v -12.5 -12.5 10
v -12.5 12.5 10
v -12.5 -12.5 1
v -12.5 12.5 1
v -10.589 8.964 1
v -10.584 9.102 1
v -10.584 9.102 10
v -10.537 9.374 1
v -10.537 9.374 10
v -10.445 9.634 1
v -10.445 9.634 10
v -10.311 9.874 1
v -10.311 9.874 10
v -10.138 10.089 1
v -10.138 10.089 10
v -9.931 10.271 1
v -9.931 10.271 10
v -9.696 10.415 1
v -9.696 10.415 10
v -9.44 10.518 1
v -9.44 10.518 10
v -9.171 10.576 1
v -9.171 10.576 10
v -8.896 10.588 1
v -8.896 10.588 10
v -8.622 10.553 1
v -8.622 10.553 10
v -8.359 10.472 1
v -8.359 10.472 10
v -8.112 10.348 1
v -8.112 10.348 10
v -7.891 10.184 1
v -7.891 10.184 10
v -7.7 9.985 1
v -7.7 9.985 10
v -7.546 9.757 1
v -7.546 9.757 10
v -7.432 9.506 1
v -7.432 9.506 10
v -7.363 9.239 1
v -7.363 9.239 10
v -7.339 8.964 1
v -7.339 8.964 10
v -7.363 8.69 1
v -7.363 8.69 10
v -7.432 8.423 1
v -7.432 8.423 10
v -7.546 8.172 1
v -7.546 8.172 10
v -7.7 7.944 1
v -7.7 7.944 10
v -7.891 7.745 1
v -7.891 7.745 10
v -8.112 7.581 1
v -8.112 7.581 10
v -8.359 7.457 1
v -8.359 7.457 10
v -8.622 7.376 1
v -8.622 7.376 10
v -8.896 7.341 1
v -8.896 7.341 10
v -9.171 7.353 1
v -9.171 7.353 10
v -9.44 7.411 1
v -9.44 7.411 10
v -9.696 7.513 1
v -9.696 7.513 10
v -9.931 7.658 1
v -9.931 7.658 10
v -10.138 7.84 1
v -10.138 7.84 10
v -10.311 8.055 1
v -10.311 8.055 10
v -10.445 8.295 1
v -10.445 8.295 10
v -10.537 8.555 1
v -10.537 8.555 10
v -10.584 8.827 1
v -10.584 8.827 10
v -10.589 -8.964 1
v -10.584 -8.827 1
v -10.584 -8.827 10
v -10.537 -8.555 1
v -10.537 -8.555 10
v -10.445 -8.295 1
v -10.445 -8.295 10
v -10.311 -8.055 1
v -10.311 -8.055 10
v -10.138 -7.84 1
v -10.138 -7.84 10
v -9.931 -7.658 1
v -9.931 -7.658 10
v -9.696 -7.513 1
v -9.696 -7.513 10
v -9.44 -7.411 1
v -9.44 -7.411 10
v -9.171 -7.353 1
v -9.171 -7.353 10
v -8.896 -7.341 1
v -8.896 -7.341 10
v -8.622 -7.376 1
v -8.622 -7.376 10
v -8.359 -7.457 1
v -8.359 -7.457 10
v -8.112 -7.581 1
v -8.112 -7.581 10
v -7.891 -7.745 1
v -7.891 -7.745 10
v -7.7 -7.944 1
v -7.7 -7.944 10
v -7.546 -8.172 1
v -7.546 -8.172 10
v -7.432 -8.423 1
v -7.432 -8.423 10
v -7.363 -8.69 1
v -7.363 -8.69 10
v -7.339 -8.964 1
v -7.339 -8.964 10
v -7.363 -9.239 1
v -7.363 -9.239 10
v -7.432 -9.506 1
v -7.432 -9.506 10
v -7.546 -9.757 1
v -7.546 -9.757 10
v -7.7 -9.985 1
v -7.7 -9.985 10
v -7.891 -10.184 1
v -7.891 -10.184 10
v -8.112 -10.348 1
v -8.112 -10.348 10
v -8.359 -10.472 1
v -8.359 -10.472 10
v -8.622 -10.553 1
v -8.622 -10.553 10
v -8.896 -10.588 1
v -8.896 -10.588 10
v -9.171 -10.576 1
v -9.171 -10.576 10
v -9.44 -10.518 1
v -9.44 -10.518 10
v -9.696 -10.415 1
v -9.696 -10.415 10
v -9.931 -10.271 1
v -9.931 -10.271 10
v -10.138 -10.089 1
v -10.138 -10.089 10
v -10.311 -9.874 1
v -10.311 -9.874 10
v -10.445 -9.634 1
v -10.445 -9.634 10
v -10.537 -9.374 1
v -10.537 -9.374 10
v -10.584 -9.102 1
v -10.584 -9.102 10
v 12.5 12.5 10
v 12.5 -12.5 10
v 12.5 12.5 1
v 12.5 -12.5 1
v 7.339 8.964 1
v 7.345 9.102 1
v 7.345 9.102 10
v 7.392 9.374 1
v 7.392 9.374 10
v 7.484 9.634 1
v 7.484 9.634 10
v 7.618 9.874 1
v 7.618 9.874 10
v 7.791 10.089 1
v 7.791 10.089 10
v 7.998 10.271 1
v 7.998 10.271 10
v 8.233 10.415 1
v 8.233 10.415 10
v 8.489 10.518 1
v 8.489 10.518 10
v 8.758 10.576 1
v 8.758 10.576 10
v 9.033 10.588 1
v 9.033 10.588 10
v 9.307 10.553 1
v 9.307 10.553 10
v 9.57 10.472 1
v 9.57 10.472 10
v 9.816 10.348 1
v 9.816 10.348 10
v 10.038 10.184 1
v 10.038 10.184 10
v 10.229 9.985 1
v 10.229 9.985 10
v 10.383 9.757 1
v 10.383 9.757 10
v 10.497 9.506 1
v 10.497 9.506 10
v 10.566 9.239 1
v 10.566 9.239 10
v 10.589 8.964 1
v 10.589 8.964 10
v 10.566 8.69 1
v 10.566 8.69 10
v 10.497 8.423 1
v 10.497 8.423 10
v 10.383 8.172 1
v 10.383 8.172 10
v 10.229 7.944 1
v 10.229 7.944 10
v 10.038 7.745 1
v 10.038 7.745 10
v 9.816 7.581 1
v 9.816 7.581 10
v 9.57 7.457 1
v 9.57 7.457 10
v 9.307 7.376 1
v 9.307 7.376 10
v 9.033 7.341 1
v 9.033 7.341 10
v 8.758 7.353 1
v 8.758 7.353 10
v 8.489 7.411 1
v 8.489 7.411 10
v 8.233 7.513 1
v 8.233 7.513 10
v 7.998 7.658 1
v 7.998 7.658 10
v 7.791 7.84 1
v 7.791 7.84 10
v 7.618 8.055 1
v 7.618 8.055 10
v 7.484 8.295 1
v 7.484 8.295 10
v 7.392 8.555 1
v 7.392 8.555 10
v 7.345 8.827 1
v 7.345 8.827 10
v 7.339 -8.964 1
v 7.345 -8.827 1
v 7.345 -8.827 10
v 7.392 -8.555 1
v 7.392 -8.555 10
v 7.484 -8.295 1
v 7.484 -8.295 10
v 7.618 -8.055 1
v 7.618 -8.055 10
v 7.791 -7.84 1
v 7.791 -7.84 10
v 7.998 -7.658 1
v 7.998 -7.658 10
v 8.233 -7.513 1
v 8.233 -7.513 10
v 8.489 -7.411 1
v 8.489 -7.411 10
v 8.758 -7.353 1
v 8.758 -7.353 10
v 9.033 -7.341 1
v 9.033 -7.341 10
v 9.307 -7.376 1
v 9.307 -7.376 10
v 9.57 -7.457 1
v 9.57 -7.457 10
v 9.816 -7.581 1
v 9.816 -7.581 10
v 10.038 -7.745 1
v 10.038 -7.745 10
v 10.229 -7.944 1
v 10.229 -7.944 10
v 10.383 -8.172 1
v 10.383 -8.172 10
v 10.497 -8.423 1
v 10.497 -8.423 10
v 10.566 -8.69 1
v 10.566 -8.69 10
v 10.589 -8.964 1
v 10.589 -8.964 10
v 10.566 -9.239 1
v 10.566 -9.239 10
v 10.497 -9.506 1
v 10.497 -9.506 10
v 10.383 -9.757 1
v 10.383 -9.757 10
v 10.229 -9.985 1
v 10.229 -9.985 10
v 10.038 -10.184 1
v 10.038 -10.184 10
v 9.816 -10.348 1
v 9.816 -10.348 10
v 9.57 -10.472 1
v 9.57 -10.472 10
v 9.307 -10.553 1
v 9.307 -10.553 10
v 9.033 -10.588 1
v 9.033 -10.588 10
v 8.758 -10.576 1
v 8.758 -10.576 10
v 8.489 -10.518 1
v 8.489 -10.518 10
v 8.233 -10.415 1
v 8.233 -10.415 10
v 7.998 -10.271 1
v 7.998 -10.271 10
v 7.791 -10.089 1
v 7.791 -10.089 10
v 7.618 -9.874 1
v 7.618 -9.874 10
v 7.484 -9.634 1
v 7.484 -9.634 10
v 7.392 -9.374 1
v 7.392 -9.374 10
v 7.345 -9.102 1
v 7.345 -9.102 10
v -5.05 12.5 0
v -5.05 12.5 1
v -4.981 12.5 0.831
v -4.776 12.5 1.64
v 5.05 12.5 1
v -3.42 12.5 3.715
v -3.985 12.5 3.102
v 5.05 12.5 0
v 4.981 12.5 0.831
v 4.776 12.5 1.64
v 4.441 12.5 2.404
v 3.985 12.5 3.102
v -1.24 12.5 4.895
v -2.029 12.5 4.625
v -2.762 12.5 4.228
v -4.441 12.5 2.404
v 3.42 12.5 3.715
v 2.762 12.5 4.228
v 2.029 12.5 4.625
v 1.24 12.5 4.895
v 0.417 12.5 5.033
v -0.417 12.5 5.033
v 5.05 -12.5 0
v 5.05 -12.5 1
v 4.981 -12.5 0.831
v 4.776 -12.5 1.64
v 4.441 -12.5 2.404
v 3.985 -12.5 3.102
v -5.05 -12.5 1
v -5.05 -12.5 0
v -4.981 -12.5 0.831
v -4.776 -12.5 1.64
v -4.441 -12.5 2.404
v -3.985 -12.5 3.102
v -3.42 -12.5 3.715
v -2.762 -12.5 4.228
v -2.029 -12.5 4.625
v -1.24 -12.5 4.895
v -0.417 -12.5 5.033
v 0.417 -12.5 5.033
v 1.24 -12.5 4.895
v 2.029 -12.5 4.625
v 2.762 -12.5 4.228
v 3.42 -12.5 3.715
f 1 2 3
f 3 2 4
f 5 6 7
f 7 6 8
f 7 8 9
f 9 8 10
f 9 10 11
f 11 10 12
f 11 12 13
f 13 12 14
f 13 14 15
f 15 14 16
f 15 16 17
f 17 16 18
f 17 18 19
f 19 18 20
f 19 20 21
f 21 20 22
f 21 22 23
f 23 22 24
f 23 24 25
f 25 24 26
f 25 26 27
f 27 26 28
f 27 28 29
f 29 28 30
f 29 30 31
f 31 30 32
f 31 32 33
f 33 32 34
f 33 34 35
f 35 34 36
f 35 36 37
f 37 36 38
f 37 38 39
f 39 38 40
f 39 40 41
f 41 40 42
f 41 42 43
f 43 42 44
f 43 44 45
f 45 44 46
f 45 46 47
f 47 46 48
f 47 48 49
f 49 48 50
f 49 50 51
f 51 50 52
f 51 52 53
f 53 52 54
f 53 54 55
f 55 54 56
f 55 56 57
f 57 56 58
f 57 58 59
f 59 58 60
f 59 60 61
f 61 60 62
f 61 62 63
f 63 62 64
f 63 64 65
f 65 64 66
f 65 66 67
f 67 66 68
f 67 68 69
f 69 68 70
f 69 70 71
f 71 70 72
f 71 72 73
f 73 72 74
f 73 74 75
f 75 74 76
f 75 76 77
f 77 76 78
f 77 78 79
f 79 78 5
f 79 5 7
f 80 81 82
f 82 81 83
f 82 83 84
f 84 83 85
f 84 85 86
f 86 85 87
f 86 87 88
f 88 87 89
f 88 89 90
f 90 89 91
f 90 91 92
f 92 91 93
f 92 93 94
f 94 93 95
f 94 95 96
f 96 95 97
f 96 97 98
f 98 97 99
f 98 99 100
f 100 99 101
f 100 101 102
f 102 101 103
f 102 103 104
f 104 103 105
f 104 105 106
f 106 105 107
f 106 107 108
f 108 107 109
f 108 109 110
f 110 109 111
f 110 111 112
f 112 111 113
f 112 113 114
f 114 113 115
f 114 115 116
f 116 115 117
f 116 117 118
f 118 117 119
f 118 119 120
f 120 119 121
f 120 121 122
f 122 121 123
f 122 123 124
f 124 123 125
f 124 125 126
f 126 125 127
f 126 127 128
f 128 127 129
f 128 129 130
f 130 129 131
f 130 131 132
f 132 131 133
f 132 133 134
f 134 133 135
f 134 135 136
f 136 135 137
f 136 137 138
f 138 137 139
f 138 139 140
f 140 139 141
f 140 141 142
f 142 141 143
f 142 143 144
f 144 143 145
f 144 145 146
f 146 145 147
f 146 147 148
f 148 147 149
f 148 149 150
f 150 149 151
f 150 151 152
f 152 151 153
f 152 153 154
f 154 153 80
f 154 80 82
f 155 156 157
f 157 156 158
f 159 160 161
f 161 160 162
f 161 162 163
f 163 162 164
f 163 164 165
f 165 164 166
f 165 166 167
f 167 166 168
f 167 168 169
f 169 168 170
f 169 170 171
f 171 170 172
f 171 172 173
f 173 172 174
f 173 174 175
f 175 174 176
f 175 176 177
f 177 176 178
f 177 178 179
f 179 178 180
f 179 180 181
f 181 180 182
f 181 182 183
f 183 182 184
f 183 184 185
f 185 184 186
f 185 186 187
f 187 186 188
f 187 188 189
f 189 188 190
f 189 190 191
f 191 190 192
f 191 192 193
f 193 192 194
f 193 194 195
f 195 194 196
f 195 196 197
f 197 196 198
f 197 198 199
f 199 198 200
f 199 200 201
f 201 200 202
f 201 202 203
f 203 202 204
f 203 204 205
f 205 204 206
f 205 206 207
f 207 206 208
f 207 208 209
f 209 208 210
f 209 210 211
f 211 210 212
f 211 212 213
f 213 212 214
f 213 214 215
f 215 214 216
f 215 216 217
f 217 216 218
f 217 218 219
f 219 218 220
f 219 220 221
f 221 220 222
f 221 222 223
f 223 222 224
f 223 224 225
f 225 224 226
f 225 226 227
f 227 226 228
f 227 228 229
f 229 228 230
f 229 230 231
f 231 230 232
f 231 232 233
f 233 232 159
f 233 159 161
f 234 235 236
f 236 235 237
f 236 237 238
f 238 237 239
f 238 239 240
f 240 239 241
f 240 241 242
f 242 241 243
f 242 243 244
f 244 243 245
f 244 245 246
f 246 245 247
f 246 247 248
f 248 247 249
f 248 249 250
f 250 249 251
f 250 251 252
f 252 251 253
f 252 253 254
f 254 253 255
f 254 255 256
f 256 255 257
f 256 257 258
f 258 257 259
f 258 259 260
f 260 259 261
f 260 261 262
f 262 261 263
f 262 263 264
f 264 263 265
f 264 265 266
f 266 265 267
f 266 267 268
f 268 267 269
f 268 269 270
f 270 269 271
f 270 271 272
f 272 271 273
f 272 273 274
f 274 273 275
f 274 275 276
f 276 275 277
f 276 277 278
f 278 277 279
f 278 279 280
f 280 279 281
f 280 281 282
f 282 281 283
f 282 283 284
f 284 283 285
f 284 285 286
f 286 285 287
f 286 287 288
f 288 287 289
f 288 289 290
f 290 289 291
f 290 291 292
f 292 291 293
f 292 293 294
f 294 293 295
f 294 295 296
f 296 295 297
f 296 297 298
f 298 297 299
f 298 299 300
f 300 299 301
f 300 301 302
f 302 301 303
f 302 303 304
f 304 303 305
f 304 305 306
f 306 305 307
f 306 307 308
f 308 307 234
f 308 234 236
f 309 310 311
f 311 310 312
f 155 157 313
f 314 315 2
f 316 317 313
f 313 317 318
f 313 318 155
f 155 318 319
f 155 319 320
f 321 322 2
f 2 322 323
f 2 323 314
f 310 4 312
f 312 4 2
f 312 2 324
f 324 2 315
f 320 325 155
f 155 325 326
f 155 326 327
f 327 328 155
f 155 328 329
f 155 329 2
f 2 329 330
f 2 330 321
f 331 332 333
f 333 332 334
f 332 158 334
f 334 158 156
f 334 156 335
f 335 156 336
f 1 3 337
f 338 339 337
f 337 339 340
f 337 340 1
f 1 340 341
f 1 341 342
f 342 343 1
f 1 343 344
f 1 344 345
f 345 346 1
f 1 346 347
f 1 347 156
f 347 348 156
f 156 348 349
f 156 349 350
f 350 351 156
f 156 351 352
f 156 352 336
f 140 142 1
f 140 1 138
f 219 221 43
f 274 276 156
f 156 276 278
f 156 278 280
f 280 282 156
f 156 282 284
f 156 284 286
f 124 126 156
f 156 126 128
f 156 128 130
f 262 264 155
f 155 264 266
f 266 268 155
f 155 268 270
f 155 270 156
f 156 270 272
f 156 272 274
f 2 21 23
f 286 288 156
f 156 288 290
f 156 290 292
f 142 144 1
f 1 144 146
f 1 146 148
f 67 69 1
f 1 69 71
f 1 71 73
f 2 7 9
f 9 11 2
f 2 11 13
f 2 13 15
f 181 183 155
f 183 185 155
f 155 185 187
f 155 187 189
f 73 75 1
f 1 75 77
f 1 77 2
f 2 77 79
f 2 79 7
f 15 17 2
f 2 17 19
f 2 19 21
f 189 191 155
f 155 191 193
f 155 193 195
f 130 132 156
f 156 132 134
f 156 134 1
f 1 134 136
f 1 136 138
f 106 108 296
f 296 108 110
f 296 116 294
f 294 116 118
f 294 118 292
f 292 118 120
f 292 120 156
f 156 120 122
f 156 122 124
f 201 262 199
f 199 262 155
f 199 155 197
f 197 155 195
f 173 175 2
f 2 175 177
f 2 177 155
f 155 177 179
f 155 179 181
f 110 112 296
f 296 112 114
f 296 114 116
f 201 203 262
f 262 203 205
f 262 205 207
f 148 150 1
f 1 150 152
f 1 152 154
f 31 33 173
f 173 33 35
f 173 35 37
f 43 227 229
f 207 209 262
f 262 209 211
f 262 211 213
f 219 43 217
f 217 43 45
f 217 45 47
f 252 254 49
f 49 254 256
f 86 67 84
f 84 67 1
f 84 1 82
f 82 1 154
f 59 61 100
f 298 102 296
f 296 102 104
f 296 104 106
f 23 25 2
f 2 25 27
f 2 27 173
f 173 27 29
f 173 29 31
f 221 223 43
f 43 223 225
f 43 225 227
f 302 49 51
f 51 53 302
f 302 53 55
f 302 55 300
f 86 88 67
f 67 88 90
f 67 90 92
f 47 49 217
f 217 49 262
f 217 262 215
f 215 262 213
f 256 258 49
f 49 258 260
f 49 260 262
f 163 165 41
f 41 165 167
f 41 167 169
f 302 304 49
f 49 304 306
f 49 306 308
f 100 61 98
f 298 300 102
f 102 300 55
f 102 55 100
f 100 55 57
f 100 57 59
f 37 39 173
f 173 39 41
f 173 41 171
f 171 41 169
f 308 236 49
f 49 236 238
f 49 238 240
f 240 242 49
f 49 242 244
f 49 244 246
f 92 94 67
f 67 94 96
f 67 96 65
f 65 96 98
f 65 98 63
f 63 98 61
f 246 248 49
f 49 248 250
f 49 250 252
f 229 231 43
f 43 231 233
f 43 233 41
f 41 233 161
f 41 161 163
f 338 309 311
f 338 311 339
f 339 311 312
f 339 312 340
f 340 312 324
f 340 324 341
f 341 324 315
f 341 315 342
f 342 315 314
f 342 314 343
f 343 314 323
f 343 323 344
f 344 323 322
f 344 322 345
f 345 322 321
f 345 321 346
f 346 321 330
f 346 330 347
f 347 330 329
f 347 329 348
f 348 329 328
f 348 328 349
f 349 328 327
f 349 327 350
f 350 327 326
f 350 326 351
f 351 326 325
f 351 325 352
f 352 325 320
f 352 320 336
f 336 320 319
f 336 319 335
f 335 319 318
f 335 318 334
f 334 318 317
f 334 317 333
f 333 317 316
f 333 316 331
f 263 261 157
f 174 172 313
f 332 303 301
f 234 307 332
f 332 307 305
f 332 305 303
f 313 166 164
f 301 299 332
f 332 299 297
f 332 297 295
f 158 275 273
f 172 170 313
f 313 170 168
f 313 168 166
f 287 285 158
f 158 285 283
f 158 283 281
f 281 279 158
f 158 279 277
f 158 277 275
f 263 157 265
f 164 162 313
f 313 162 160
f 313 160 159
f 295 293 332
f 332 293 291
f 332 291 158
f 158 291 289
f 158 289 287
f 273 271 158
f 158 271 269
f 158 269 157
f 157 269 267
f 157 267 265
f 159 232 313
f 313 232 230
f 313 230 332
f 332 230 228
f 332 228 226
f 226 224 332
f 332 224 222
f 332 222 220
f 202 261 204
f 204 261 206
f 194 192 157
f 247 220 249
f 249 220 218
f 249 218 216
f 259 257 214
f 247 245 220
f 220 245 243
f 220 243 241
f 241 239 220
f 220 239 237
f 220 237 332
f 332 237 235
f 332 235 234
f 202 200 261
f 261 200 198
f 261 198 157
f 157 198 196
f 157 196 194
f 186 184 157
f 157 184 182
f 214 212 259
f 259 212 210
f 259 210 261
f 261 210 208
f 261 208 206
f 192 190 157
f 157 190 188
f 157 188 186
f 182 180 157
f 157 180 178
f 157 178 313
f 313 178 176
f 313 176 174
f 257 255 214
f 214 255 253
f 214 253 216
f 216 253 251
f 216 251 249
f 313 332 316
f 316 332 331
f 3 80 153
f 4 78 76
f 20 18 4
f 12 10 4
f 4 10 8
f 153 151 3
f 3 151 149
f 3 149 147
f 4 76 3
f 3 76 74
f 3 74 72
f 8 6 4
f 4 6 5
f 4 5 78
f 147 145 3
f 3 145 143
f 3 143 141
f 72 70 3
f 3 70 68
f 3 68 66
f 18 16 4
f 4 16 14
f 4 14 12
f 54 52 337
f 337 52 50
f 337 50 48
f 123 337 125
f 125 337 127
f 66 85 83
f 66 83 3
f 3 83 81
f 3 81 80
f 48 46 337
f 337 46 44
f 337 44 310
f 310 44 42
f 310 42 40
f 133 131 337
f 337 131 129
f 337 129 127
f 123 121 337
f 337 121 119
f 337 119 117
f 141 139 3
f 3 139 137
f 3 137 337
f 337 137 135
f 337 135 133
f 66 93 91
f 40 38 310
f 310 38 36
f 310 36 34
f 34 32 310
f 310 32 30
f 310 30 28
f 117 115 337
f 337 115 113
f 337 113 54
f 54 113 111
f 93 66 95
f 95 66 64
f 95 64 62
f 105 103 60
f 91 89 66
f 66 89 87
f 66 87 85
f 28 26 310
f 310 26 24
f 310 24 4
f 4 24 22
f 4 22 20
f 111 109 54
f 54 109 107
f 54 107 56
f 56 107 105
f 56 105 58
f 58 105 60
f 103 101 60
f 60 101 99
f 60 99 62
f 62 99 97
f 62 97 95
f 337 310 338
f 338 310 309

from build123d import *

# Parameters (mm, degrees)
SKETCH1_W           = 25
SKETCH1_H           = 25
BOSS_EXTRUDE2_DEPTH = 10
SKETCH2_R           = 5.05
CUT_EXTRUDE1_DEPTH  = 26
SKETCH3_R           = 1.625
CUT_EXTRUDE2_DEPTH  = 11
SKETCH4_W           = 7.45
SKETCH4_H           = 25
CUT_EXTRUDE3_DEPTH  = 1


with BuildPart() as part:
    # Sketch1 → Boss-Extrude2 (new body)
    with BuildSketch(Plane.XY):
        Rectangle(SKETCH1_W, SKETCH1_H)
    extrude(amount=BOSS_EXTRUDE2_DEPTH)

    # Sketch2 → Cut-Extrude1 (cut, through all)
    with BuildSketch(Plane(origin=(0, 12.5, 0), x_dir=(1, 0, 0), z_dir=(0, 1, 0))):
        Circle(SKETCH2_R)
    extrude(amount=-CUT_EXTRUDE1_DEPTH, mode=Mode.SUBTRACT)

    # Sketch3 → Cut-Extrude2 (cut, through all)
    with BuildSketch(Plane.XY.offset(10)):
        with Locations((-8.964466094, 8.964466094)):
            Circle(SKETCH3_R)
        with Locations((8.964466094, 8.964466094)):
            Circle(SKETCH3_R)
        with Locations((8.964466094, -8.964466094)):
            Circle(SKETCH3_R)
        with Locations((-8.964466094, -8.964466094)):
            Circle(SKETCH3_R)
    extrude(amount=-CUT_EXTRUDE2_DEPTH, mode=Mode.SUBTRACT)

    # Sketch4 → Cut-Extrude3 (cut)
    with BuildSketch(Plane(origin=(0, 0, 0), x_dir=(-1, 0, 0), z_dir=(0, 0, -1))):
        with Locations((-8.775, 0)):
            Rectangle(SKETCH4_W, SKETCH4_H)
        with Locations((8.775, 0)):
            Rectangle(SKETCH4_W, SKETCH4_H)
    extrude(amount=-CUT_EXTRUDE3_DEPTH, mode=Mode.SUBTRACT)


solid = part.part
